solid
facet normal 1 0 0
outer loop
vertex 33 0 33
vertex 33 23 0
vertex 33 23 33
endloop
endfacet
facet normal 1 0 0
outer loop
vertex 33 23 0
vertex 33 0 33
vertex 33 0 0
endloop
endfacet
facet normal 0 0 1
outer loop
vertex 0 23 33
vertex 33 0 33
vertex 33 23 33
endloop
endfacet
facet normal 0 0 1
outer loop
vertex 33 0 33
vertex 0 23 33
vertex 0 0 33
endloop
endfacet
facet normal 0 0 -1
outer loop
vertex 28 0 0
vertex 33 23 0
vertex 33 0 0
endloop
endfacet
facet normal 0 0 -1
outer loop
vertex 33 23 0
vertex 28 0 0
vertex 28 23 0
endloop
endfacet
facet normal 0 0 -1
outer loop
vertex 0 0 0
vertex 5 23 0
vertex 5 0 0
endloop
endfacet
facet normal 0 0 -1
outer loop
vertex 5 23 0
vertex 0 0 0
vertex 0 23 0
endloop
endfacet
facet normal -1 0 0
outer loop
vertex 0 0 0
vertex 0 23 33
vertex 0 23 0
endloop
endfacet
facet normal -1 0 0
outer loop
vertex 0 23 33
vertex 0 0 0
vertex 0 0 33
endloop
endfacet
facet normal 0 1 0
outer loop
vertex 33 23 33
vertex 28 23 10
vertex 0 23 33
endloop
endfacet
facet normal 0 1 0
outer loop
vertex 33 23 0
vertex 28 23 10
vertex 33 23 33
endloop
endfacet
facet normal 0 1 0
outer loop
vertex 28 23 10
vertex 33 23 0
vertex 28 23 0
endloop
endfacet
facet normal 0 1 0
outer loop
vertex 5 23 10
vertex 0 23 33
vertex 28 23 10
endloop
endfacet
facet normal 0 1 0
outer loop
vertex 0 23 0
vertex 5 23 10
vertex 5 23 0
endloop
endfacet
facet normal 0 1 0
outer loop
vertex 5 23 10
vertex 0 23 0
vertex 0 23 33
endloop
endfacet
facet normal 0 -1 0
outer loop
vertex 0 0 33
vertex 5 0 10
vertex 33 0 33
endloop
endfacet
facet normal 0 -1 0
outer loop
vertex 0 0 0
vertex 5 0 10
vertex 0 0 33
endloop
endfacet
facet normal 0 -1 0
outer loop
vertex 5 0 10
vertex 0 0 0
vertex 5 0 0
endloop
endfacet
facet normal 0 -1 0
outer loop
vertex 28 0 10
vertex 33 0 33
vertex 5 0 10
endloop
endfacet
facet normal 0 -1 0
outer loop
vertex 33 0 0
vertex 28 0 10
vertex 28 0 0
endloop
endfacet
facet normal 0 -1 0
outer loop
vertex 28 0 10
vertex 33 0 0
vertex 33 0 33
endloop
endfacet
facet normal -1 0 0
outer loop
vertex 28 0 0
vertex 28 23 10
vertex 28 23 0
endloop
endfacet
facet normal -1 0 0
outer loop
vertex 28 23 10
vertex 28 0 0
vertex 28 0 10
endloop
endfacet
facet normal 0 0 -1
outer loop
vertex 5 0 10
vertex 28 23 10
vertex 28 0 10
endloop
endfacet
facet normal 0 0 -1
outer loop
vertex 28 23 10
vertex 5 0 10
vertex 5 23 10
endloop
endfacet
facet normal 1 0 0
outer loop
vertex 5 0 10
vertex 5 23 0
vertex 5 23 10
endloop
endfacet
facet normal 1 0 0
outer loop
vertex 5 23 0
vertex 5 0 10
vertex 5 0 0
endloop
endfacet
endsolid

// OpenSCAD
// Height between base and table
base_height = 23;

// Width of the base cube, this includes the margin/feet around the plank for stabilization
base_width = 33;

// With of item to have a strong cube shape
base_depth = 23;

// How far the stabilizers to down
cutout_height = 10;

// With of plank to put base against
cutout_width = 23;

difference() {
  cube([base_width, base_depth, base_height+cutout_height]);
  translate([(base_width - cutout_width)/2,-1,-1]) cube([cutout_width, base_depth+2, cutout_height+1]);
}
